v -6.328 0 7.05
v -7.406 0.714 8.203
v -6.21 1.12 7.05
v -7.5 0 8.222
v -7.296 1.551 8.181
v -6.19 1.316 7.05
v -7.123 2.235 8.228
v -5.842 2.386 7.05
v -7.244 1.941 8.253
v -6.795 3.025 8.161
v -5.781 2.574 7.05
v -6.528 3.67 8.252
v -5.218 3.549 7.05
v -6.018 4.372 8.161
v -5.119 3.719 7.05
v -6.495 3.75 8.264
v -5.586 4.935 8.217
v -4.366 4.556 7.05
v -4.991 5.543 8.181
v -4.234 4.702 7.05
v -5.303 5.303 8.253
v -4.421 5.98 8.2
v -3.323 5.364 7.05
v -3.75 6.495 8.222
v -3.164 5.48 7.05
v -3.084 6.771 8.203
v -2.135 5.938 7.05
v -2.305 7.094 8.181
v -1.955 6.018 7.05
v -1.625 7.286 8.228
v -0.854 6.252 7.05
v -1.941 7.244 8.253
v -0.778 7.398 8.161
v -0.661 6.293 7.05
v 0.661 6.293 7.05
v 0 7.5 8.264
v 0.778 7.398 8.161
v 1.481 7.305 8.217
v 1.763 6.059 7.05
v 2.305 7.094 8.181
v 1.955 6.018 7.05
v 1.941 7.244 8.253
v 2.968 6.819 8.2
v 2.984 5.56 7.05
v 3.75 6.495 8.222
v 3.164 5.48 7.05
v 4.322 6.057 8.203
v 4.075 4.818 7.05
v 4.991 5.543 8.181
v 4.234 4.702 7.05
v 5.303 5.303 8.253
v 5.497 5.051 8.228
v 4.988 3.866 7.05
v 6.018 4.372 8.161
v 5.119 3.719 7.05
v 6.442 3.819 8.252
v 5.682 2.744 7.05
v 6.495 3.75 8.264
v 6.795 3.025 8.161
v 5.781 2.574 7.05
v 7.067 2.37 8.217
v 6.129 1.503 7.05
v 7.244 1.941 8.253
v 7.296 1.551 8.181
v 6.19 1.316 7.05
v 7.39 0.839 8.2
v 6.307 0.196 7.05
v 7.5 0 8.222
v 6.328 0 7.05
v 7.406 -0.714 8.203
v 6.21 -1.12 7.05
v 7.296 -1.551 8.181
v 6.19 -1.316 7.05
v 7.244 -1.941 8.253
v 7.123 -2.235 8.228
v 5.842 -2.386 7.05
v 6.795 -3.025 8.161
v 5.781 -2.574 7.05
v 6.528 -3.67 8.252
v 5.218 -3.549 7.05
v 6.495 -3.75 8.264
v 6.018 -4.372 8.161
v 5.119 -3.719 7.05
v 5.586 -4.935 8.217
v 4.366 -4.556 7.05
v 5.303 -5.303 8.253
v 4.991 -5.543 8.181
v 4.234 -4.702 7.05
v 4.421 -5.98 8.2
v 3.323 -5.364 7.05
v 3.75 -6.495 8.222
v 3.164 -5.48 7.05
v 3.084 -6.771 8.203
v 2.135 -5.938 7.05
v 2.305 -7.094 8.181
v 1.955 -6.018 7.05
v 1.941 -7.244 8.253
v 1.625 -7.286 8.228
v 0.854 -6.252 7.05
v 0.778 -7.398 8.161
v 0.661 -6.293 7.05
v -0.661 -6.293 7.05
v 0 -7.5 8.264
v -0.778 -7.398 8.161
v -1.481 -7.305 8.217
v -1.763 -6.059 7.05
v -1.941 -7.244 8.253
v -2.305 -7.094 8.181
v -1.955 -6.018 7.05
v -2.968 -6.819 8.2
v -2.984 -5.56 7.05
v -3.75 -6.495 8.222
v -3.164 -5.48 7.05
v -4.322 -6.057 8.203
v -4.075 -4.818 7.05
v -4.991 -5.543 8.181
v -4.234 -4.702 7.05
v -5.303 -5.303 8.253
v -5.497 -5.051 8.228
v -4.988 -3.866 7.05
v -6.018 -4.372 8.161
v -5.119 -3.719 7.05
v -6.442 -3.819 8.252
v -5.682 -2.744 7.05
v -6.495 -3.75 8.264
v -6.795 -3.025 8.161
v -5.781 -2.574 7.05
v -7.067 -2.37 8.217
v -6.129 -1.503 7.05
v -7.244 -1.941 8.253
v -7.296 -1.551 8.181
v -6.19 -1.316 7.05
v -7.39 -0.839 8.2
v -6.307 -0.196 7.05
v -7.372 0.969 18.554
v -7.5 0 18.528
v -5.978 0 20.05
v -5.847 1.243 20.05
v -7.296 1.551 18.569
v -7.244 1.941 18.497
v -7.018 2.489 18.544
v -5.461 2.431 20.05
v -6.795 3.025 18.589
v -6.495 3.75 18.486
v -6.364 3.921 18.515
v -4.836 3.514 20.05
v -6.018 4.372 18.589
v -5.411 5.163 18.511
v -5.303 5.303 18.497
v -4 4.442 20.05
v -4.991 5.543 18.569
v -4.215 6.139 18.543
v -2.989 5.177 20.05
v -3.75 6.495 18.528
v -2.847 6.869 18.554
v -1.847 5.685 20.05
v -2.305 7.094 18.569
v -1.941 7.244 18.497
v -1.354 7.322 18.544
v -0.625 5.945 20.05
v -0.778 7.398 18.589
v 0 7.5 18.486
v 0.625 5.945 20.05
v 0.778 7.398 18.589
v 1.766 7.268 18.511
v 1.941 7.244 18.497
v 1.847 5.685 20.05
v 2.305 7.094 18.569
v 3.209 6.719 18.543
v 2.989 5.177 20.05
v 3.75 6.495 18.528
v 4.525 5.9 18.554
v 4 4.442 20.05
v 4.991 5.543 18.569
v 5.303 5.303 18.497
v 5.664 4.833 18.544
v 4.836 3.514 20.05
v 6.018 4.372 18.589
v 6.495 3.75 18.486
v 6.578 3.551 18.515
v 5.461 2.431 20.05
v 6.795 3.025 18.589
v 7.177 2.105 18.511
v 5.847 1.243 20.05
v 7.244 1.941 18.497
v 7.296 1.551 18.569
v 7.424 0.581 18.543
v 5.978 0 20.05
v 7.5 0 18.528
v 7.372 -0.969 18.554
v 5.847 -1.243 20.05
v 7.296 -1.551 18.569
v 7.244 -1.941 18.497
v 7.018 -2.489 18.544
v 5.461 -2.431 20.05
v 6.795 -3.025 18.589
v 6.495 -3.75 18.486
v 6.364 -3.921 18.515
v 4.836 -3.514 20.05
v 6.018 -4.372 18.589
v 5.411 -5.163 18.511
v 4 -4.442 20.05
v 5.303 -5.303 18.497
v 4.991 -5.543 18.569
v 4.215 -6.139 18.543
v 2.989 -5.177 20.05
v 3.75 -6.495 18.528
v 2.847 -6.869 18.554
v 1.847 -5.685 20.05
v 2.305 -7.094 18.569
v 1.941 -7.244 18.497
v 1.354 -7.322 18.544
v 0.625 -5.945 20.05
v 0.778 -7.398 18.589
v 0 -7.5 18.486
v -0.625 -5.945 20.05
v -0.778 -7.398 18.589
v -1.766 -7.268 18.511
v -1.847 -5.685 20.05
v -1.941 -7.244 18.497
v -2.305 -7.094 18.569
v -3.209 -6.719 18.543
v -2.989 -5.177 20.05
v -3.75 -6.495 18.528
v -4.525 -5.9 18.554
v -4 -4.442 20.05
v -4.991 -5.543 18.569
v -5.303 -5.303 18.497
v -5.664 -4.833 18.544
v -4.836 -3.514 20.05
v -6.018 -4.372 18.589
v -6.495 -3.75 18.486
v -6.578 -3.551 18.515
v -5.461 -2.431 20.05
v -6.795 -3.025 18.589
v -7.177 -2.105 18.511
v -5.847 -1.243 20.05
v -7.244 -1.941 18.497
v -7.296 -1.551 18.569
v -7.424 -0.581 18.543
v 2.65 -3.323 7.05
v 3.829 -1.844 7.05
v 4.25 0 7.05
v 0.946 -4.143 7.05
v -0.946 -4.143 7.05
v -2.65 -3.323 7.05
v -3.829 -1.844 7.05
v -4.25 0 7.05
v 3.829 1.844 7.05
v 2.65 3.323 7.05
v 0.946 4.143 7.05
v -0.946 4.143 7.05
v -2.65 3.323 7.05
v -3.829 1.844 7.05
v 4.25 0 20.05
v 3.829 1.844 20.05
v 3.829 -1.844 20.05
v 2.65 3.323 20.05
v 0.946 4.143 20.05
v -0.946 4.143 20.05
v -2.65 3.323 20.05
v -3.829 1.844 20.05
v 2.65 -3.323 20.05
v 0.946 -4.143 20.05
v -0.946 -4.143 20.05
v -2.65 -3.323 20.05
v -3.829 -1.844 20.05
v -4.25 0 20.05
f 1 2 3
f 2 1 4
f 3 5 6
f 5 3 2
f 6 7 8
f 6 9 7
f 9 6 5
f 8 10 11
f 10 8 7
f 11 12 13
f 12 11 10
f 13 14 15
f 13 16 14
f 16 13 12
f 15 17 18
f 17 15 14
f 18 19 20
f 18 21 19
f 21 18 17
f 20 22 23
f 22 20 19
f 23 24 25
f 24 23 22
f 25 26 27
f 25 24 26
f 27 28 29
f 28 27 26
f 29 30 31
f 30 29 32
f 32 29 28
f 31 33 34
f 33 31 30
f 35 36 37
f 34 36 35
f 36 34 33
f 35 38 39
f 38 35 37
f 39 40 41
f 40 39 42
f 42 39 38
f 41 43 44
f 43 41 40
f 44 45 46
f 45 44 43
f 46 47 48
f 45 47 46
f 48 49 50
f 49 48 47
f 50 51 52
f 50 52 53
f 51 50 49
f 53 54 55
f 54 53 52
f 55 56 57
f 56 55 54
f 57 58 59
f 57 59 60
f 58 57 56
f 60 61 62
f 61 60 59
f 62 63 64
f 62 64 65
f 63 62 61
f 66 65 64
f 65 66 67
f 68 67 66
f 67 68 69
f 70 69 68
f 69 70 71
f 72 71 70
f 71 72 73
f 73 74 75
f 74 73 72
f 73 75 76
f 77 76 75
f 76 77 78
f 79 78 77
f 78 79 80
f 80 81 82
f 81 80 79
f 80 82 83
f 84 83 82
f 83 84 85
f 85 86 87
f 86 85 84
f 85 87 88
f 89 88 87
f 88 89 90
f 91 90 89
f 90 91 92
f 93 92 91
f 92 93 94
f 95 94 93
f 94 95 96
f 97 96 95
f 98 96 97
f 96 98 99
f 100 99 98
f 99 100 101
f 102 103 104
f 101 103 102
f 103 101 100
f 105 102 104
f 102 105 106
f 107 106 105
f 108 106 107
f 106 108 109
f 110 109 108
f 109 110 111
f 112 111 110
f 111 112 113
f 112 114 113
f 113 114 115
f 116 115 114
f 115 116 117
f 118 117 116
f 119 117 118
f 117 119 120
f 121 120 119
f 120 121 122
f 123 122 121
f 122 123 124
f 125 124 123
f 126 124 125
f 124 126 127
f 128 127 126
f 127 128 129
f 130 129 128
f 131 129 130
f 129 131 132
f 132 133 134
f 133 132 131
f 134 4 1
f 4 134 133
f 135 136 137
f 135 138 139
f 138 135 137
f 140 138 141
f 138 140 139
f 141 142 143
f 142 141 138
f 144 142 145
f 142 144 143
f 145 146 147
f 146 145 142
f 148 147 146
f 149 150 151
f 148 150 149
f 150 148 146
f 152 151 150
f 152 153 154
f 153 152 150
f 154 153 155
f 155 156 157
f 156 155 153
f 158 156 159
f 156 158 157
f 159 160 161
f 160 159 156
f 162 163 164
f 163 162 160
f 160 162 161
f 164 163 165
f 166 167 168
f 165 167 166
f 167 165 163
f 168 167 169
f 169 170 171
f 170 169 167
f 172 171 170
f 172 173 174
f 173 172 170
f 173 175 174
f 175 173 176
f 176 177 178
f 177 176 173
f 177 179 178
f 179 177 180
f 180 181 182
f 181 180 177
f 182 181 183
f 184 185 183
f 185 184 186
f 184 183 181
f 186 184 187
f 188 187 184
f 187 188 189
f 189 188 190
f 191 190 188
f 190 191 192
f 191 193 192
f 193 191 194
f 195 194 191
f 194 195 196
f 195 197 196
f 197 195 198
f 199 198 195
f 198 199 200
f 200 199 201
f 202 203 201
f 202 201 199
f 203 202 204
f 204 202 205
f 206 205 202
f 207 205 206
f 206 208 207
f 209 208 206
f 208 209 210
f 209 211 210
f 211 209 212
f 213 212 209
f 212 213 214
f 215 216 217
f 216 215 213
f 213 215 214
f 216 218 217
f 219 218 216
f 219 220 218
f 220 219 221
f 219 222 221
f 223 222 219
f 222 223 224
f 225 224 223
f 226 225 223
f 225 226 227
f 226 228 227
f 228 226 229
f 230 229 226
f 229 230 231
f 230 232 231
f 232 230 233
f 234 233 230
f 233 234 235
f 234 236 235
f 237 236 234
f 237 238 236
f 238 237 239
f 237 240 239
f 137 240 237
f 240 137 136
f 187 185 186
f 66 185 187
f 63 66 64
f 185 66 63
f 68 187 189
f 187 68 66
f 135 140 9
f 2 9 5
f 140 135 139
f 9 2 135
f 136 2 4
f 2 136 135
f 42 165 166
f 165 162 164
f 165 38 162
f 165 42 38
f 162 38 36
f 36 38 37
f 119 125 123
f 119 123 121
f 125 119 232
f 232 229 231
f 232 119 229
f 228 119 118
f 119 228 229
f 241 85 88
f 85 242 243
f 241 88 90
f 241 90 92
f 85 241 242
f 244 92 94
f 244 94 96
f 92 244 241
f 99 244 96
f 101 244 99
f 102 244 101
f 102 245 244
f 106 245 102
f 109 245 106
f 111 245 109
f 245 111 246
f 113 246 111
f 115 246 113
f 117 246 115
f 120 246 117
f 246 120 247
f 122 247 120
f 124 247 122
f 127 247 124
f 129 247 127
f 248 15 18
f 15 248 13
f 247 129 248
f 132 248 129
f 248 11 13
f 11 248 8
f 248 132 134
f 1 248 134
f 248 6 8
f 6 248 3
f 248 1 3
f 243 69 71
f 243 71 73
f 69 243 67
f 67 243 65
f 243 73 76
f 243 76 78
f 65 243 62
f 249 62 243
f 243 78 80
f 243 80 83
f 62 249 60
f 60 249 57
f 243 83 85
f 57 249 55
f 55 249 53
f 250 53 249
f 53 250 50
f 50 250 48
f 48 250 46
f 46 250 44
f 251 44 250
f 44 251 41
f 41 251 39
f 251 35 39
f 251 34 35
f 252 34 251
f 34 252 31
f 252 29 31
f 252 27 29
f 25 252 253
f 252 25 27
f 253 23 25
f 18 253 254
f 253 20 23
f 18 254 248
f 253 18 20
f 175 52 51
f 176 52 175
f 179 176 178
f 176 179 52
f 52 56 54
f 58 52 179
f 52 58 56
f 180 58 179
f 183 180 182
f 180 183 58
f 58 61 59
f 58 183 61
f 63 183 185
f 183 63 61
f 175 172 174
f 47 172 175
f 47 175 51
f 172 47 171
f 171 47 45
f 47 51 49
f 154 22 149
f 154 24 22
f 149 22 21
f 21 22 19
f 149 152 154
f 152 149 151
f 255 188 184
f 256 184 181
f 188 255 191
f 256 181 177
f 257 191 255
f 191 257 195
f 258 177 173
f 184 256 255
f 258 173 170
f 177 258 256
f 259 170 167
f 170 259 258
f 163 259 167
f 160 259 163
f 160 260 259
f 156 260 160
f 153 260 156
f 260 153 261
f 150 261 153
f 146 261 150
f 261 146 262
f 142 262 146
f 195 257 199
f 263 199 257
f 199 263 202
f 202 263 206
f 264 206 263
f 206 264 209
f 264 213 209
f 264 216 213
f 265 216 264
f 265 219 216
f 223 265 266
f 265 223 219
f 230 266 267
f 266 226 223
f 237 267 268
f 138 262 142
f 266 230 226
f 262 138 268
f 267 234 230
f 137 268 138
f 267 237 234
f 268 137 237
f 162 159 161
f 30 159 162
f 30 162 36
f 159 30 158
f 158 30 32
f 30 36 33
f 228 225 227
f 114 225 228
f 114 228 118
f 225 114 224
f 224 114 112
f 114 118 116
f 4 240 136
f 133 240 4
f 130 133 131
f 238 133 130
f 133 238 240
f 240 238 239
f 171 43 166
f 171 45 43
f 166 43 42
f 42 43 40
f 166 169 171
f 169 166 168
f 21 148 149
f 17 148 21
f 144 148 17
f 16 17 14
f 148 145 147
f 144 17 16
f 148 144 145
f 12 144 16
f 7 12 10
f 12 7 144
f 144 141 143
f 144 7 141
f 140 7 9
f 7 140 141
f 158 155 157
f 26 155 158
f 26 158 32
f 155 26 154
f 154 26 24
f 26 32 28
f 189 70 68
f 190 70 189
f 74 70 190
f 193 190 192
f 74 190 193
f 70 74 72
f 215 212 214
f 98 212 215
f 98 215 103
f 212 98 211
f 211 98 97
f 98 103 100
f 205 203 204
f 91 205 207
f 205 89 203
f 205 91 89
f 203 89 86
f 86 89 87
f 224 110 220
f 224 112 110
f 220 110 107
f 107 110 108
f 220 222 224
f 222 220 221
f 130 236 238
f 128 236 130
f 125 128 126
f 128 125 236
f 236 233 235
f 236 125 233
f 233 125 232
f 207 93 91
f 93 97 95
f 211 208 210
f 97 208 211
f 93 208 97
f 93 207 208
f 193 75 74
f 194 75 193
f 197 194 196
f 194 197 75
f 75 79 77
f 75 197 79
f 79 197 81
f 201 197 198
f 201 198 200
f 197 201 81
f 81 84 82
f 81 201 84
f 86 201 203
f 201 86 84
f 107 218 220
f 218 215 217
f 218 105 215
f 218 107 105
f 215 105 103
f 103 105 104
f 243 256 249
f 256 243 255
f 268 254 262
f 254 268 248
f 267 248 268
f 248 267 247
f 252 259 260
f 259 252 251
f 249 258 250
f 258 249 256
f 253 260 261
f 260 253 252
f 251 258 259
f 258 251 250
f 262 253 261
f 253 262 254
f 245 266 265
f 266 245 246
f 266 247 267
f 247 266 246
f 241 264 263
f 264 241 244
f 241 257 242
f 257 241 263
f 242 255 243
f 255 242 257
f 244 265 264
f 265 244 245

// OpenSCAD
// file: parameters.scad
// Parameters shared between modules

Base_th = 2.8;
Beam_width = 15;
Wiggle = 0.25;
Fat_beam_width = Beam_width + Wiggle;
Beam_length = 400;
Wall_th = 2.5;

Min_beam_width = 12.5;
Max_beam_width = 17.5;
Zip_th = 2;
Zip_h = Zip_th + Max_beam_width - Min_beam_width;
Zip_w = 5.0;

Nema17_cube_width          = 42.43;
Nema17_screw_hole_width    = 43.74; // Opposite corner screws
Nema17_ring_diameter       = 22;
Nema17_cube_height         = 39.36;
Nema17_shaft_height        = 63.65;
Nema17_ring_height         = 2;
Nema17_shaft_radius        = 5/2;

b608_outer_dia = 22.2;
b608_width = 7.05;

Gap_between_sandwich_and_plate = 1.5 + Base_th; // 1.5 mm for wiggle

Motor_bracket_flerp_r = 6;
Motor_bracket_flerp = 14;
Motor_bracket_cw = Nema17_cube_width + 6;
Motor_bracket_att_ang = 50;

Mounting_screw_d = 4.5;
Mounting_screw_head_d = 14;

Spool_outer_wall_th = 4;

// Corner clamp parameters
Cc_l1 = (Fat_beam_width+2*Wall_th)*2*sqrt(3);
Cc_rad_b = 4;
Cc_action_point_from_mid = Cc_l1/sqrt(3)-2*Cc_rad_b-1.3;  // 1.3 chosen arbitrarily
Cc_plastic_length = sqrt(Cc_action_point_from_mid*Cc_action_point_from_mid
                       - (Cc_action_point_from_mid/2)*(Cc_action_point_from_mid/2));

// The distance between the two action points on the mover
Sidelength = Beam_length + 2*Cc_plastic_length;

/////// Layout parameters ////////////
Ext_sidelength = Sidelength+77;
Additional_added_plate_side_length = 10;
Yshift_top_plate = -25;

/////// Gear parameters ////////////
Circular_pitch = 262;
Motor_teeth = 10;
Gear_height = 21.4-3;
Motor_pitch                      = (Motor_teeth*Circular_pitch/360);
Motor_pitch_diametrial           = Motor_teeth/(2*Motor_pitch);
Motor_outer_radius               = Motor_pitch + 1/Motor_pitch_diametrial;
Spool_teeth = 100;
Spool_r = 55;
Spool_height = 8;
Spool_pitch                      = (Spool_teeth*Circular_pitch/360);
Spool_pitch_diametrial           = Spool_teeth/(2*Spool_pitch);
Spool_outer_radius               = Spool_pitch + 1/Spool_pitch_diametrial;
Torx_depth = 5;
Motor_bracket_depth = Gear_height+1+7+Nema17_ring_height+1+Gap_between_sandwich_and_plate;
Spool_core_flerp0 = 16+3;

/////// Lineroller parameters ////////////
Bearing_width  = 4;
Bearing_r      = 12/2;
Bearing_small_r = 10/2;
Bearing_bore_r = 3/2;

Lineroller_wall_th = 2.3;
// The height that lineroller_ABC_winch will have if we include the bearing
Tower_h = Gap_between_sandwich_and_plate+Gear_height + Spool_height/2 + Bearing_small_r + Bearing_r;

Bearing_wall = 1;
Depth_of_lineroller_tower = Bearing_width + 2*Wall_th; // 9
Depth_of_lineroller_base = Depth_of_lineroller_tower + 9; // 18
Ptfe_r = 2.1;

Lineroller_base_r = Depth_of_lineroller_base/2-1*(Ptfe_r+2);

Screw_h = 2;
Screw_head_h = 2;
// main file
include <parameters.scad>

sandwich_height = Spool_height+0.7+Gear_height;

module import_the_sandiwch(){
  translate([0,0,0.1])
  import("../openscad_stl/spool_gear.stl");
  translate([0,0,sandwich_height])
    rotate([0,180,0])
      import("../openscad_stl/spool.stl");
}

spacer();
module spacer(){
  difference(){
    translate([0,0,b608_width])
      cylinder(d=15, h=sandwich_height-2*b608_width);
    cylinder(d=8.5, h=sandwich_height);
    // Phase in/out
    p = 6.7;
    for(k=[0,1]){
      translate([0,0,p-k*p+k*(sandwich_height-b608_width)])
        rotate_extrude(angle=360, convexity=5)
          translate([Motor_pitch-1.3,0])
            rotate([0,0,-45])
              square([4,5]);
    }
  }
}
